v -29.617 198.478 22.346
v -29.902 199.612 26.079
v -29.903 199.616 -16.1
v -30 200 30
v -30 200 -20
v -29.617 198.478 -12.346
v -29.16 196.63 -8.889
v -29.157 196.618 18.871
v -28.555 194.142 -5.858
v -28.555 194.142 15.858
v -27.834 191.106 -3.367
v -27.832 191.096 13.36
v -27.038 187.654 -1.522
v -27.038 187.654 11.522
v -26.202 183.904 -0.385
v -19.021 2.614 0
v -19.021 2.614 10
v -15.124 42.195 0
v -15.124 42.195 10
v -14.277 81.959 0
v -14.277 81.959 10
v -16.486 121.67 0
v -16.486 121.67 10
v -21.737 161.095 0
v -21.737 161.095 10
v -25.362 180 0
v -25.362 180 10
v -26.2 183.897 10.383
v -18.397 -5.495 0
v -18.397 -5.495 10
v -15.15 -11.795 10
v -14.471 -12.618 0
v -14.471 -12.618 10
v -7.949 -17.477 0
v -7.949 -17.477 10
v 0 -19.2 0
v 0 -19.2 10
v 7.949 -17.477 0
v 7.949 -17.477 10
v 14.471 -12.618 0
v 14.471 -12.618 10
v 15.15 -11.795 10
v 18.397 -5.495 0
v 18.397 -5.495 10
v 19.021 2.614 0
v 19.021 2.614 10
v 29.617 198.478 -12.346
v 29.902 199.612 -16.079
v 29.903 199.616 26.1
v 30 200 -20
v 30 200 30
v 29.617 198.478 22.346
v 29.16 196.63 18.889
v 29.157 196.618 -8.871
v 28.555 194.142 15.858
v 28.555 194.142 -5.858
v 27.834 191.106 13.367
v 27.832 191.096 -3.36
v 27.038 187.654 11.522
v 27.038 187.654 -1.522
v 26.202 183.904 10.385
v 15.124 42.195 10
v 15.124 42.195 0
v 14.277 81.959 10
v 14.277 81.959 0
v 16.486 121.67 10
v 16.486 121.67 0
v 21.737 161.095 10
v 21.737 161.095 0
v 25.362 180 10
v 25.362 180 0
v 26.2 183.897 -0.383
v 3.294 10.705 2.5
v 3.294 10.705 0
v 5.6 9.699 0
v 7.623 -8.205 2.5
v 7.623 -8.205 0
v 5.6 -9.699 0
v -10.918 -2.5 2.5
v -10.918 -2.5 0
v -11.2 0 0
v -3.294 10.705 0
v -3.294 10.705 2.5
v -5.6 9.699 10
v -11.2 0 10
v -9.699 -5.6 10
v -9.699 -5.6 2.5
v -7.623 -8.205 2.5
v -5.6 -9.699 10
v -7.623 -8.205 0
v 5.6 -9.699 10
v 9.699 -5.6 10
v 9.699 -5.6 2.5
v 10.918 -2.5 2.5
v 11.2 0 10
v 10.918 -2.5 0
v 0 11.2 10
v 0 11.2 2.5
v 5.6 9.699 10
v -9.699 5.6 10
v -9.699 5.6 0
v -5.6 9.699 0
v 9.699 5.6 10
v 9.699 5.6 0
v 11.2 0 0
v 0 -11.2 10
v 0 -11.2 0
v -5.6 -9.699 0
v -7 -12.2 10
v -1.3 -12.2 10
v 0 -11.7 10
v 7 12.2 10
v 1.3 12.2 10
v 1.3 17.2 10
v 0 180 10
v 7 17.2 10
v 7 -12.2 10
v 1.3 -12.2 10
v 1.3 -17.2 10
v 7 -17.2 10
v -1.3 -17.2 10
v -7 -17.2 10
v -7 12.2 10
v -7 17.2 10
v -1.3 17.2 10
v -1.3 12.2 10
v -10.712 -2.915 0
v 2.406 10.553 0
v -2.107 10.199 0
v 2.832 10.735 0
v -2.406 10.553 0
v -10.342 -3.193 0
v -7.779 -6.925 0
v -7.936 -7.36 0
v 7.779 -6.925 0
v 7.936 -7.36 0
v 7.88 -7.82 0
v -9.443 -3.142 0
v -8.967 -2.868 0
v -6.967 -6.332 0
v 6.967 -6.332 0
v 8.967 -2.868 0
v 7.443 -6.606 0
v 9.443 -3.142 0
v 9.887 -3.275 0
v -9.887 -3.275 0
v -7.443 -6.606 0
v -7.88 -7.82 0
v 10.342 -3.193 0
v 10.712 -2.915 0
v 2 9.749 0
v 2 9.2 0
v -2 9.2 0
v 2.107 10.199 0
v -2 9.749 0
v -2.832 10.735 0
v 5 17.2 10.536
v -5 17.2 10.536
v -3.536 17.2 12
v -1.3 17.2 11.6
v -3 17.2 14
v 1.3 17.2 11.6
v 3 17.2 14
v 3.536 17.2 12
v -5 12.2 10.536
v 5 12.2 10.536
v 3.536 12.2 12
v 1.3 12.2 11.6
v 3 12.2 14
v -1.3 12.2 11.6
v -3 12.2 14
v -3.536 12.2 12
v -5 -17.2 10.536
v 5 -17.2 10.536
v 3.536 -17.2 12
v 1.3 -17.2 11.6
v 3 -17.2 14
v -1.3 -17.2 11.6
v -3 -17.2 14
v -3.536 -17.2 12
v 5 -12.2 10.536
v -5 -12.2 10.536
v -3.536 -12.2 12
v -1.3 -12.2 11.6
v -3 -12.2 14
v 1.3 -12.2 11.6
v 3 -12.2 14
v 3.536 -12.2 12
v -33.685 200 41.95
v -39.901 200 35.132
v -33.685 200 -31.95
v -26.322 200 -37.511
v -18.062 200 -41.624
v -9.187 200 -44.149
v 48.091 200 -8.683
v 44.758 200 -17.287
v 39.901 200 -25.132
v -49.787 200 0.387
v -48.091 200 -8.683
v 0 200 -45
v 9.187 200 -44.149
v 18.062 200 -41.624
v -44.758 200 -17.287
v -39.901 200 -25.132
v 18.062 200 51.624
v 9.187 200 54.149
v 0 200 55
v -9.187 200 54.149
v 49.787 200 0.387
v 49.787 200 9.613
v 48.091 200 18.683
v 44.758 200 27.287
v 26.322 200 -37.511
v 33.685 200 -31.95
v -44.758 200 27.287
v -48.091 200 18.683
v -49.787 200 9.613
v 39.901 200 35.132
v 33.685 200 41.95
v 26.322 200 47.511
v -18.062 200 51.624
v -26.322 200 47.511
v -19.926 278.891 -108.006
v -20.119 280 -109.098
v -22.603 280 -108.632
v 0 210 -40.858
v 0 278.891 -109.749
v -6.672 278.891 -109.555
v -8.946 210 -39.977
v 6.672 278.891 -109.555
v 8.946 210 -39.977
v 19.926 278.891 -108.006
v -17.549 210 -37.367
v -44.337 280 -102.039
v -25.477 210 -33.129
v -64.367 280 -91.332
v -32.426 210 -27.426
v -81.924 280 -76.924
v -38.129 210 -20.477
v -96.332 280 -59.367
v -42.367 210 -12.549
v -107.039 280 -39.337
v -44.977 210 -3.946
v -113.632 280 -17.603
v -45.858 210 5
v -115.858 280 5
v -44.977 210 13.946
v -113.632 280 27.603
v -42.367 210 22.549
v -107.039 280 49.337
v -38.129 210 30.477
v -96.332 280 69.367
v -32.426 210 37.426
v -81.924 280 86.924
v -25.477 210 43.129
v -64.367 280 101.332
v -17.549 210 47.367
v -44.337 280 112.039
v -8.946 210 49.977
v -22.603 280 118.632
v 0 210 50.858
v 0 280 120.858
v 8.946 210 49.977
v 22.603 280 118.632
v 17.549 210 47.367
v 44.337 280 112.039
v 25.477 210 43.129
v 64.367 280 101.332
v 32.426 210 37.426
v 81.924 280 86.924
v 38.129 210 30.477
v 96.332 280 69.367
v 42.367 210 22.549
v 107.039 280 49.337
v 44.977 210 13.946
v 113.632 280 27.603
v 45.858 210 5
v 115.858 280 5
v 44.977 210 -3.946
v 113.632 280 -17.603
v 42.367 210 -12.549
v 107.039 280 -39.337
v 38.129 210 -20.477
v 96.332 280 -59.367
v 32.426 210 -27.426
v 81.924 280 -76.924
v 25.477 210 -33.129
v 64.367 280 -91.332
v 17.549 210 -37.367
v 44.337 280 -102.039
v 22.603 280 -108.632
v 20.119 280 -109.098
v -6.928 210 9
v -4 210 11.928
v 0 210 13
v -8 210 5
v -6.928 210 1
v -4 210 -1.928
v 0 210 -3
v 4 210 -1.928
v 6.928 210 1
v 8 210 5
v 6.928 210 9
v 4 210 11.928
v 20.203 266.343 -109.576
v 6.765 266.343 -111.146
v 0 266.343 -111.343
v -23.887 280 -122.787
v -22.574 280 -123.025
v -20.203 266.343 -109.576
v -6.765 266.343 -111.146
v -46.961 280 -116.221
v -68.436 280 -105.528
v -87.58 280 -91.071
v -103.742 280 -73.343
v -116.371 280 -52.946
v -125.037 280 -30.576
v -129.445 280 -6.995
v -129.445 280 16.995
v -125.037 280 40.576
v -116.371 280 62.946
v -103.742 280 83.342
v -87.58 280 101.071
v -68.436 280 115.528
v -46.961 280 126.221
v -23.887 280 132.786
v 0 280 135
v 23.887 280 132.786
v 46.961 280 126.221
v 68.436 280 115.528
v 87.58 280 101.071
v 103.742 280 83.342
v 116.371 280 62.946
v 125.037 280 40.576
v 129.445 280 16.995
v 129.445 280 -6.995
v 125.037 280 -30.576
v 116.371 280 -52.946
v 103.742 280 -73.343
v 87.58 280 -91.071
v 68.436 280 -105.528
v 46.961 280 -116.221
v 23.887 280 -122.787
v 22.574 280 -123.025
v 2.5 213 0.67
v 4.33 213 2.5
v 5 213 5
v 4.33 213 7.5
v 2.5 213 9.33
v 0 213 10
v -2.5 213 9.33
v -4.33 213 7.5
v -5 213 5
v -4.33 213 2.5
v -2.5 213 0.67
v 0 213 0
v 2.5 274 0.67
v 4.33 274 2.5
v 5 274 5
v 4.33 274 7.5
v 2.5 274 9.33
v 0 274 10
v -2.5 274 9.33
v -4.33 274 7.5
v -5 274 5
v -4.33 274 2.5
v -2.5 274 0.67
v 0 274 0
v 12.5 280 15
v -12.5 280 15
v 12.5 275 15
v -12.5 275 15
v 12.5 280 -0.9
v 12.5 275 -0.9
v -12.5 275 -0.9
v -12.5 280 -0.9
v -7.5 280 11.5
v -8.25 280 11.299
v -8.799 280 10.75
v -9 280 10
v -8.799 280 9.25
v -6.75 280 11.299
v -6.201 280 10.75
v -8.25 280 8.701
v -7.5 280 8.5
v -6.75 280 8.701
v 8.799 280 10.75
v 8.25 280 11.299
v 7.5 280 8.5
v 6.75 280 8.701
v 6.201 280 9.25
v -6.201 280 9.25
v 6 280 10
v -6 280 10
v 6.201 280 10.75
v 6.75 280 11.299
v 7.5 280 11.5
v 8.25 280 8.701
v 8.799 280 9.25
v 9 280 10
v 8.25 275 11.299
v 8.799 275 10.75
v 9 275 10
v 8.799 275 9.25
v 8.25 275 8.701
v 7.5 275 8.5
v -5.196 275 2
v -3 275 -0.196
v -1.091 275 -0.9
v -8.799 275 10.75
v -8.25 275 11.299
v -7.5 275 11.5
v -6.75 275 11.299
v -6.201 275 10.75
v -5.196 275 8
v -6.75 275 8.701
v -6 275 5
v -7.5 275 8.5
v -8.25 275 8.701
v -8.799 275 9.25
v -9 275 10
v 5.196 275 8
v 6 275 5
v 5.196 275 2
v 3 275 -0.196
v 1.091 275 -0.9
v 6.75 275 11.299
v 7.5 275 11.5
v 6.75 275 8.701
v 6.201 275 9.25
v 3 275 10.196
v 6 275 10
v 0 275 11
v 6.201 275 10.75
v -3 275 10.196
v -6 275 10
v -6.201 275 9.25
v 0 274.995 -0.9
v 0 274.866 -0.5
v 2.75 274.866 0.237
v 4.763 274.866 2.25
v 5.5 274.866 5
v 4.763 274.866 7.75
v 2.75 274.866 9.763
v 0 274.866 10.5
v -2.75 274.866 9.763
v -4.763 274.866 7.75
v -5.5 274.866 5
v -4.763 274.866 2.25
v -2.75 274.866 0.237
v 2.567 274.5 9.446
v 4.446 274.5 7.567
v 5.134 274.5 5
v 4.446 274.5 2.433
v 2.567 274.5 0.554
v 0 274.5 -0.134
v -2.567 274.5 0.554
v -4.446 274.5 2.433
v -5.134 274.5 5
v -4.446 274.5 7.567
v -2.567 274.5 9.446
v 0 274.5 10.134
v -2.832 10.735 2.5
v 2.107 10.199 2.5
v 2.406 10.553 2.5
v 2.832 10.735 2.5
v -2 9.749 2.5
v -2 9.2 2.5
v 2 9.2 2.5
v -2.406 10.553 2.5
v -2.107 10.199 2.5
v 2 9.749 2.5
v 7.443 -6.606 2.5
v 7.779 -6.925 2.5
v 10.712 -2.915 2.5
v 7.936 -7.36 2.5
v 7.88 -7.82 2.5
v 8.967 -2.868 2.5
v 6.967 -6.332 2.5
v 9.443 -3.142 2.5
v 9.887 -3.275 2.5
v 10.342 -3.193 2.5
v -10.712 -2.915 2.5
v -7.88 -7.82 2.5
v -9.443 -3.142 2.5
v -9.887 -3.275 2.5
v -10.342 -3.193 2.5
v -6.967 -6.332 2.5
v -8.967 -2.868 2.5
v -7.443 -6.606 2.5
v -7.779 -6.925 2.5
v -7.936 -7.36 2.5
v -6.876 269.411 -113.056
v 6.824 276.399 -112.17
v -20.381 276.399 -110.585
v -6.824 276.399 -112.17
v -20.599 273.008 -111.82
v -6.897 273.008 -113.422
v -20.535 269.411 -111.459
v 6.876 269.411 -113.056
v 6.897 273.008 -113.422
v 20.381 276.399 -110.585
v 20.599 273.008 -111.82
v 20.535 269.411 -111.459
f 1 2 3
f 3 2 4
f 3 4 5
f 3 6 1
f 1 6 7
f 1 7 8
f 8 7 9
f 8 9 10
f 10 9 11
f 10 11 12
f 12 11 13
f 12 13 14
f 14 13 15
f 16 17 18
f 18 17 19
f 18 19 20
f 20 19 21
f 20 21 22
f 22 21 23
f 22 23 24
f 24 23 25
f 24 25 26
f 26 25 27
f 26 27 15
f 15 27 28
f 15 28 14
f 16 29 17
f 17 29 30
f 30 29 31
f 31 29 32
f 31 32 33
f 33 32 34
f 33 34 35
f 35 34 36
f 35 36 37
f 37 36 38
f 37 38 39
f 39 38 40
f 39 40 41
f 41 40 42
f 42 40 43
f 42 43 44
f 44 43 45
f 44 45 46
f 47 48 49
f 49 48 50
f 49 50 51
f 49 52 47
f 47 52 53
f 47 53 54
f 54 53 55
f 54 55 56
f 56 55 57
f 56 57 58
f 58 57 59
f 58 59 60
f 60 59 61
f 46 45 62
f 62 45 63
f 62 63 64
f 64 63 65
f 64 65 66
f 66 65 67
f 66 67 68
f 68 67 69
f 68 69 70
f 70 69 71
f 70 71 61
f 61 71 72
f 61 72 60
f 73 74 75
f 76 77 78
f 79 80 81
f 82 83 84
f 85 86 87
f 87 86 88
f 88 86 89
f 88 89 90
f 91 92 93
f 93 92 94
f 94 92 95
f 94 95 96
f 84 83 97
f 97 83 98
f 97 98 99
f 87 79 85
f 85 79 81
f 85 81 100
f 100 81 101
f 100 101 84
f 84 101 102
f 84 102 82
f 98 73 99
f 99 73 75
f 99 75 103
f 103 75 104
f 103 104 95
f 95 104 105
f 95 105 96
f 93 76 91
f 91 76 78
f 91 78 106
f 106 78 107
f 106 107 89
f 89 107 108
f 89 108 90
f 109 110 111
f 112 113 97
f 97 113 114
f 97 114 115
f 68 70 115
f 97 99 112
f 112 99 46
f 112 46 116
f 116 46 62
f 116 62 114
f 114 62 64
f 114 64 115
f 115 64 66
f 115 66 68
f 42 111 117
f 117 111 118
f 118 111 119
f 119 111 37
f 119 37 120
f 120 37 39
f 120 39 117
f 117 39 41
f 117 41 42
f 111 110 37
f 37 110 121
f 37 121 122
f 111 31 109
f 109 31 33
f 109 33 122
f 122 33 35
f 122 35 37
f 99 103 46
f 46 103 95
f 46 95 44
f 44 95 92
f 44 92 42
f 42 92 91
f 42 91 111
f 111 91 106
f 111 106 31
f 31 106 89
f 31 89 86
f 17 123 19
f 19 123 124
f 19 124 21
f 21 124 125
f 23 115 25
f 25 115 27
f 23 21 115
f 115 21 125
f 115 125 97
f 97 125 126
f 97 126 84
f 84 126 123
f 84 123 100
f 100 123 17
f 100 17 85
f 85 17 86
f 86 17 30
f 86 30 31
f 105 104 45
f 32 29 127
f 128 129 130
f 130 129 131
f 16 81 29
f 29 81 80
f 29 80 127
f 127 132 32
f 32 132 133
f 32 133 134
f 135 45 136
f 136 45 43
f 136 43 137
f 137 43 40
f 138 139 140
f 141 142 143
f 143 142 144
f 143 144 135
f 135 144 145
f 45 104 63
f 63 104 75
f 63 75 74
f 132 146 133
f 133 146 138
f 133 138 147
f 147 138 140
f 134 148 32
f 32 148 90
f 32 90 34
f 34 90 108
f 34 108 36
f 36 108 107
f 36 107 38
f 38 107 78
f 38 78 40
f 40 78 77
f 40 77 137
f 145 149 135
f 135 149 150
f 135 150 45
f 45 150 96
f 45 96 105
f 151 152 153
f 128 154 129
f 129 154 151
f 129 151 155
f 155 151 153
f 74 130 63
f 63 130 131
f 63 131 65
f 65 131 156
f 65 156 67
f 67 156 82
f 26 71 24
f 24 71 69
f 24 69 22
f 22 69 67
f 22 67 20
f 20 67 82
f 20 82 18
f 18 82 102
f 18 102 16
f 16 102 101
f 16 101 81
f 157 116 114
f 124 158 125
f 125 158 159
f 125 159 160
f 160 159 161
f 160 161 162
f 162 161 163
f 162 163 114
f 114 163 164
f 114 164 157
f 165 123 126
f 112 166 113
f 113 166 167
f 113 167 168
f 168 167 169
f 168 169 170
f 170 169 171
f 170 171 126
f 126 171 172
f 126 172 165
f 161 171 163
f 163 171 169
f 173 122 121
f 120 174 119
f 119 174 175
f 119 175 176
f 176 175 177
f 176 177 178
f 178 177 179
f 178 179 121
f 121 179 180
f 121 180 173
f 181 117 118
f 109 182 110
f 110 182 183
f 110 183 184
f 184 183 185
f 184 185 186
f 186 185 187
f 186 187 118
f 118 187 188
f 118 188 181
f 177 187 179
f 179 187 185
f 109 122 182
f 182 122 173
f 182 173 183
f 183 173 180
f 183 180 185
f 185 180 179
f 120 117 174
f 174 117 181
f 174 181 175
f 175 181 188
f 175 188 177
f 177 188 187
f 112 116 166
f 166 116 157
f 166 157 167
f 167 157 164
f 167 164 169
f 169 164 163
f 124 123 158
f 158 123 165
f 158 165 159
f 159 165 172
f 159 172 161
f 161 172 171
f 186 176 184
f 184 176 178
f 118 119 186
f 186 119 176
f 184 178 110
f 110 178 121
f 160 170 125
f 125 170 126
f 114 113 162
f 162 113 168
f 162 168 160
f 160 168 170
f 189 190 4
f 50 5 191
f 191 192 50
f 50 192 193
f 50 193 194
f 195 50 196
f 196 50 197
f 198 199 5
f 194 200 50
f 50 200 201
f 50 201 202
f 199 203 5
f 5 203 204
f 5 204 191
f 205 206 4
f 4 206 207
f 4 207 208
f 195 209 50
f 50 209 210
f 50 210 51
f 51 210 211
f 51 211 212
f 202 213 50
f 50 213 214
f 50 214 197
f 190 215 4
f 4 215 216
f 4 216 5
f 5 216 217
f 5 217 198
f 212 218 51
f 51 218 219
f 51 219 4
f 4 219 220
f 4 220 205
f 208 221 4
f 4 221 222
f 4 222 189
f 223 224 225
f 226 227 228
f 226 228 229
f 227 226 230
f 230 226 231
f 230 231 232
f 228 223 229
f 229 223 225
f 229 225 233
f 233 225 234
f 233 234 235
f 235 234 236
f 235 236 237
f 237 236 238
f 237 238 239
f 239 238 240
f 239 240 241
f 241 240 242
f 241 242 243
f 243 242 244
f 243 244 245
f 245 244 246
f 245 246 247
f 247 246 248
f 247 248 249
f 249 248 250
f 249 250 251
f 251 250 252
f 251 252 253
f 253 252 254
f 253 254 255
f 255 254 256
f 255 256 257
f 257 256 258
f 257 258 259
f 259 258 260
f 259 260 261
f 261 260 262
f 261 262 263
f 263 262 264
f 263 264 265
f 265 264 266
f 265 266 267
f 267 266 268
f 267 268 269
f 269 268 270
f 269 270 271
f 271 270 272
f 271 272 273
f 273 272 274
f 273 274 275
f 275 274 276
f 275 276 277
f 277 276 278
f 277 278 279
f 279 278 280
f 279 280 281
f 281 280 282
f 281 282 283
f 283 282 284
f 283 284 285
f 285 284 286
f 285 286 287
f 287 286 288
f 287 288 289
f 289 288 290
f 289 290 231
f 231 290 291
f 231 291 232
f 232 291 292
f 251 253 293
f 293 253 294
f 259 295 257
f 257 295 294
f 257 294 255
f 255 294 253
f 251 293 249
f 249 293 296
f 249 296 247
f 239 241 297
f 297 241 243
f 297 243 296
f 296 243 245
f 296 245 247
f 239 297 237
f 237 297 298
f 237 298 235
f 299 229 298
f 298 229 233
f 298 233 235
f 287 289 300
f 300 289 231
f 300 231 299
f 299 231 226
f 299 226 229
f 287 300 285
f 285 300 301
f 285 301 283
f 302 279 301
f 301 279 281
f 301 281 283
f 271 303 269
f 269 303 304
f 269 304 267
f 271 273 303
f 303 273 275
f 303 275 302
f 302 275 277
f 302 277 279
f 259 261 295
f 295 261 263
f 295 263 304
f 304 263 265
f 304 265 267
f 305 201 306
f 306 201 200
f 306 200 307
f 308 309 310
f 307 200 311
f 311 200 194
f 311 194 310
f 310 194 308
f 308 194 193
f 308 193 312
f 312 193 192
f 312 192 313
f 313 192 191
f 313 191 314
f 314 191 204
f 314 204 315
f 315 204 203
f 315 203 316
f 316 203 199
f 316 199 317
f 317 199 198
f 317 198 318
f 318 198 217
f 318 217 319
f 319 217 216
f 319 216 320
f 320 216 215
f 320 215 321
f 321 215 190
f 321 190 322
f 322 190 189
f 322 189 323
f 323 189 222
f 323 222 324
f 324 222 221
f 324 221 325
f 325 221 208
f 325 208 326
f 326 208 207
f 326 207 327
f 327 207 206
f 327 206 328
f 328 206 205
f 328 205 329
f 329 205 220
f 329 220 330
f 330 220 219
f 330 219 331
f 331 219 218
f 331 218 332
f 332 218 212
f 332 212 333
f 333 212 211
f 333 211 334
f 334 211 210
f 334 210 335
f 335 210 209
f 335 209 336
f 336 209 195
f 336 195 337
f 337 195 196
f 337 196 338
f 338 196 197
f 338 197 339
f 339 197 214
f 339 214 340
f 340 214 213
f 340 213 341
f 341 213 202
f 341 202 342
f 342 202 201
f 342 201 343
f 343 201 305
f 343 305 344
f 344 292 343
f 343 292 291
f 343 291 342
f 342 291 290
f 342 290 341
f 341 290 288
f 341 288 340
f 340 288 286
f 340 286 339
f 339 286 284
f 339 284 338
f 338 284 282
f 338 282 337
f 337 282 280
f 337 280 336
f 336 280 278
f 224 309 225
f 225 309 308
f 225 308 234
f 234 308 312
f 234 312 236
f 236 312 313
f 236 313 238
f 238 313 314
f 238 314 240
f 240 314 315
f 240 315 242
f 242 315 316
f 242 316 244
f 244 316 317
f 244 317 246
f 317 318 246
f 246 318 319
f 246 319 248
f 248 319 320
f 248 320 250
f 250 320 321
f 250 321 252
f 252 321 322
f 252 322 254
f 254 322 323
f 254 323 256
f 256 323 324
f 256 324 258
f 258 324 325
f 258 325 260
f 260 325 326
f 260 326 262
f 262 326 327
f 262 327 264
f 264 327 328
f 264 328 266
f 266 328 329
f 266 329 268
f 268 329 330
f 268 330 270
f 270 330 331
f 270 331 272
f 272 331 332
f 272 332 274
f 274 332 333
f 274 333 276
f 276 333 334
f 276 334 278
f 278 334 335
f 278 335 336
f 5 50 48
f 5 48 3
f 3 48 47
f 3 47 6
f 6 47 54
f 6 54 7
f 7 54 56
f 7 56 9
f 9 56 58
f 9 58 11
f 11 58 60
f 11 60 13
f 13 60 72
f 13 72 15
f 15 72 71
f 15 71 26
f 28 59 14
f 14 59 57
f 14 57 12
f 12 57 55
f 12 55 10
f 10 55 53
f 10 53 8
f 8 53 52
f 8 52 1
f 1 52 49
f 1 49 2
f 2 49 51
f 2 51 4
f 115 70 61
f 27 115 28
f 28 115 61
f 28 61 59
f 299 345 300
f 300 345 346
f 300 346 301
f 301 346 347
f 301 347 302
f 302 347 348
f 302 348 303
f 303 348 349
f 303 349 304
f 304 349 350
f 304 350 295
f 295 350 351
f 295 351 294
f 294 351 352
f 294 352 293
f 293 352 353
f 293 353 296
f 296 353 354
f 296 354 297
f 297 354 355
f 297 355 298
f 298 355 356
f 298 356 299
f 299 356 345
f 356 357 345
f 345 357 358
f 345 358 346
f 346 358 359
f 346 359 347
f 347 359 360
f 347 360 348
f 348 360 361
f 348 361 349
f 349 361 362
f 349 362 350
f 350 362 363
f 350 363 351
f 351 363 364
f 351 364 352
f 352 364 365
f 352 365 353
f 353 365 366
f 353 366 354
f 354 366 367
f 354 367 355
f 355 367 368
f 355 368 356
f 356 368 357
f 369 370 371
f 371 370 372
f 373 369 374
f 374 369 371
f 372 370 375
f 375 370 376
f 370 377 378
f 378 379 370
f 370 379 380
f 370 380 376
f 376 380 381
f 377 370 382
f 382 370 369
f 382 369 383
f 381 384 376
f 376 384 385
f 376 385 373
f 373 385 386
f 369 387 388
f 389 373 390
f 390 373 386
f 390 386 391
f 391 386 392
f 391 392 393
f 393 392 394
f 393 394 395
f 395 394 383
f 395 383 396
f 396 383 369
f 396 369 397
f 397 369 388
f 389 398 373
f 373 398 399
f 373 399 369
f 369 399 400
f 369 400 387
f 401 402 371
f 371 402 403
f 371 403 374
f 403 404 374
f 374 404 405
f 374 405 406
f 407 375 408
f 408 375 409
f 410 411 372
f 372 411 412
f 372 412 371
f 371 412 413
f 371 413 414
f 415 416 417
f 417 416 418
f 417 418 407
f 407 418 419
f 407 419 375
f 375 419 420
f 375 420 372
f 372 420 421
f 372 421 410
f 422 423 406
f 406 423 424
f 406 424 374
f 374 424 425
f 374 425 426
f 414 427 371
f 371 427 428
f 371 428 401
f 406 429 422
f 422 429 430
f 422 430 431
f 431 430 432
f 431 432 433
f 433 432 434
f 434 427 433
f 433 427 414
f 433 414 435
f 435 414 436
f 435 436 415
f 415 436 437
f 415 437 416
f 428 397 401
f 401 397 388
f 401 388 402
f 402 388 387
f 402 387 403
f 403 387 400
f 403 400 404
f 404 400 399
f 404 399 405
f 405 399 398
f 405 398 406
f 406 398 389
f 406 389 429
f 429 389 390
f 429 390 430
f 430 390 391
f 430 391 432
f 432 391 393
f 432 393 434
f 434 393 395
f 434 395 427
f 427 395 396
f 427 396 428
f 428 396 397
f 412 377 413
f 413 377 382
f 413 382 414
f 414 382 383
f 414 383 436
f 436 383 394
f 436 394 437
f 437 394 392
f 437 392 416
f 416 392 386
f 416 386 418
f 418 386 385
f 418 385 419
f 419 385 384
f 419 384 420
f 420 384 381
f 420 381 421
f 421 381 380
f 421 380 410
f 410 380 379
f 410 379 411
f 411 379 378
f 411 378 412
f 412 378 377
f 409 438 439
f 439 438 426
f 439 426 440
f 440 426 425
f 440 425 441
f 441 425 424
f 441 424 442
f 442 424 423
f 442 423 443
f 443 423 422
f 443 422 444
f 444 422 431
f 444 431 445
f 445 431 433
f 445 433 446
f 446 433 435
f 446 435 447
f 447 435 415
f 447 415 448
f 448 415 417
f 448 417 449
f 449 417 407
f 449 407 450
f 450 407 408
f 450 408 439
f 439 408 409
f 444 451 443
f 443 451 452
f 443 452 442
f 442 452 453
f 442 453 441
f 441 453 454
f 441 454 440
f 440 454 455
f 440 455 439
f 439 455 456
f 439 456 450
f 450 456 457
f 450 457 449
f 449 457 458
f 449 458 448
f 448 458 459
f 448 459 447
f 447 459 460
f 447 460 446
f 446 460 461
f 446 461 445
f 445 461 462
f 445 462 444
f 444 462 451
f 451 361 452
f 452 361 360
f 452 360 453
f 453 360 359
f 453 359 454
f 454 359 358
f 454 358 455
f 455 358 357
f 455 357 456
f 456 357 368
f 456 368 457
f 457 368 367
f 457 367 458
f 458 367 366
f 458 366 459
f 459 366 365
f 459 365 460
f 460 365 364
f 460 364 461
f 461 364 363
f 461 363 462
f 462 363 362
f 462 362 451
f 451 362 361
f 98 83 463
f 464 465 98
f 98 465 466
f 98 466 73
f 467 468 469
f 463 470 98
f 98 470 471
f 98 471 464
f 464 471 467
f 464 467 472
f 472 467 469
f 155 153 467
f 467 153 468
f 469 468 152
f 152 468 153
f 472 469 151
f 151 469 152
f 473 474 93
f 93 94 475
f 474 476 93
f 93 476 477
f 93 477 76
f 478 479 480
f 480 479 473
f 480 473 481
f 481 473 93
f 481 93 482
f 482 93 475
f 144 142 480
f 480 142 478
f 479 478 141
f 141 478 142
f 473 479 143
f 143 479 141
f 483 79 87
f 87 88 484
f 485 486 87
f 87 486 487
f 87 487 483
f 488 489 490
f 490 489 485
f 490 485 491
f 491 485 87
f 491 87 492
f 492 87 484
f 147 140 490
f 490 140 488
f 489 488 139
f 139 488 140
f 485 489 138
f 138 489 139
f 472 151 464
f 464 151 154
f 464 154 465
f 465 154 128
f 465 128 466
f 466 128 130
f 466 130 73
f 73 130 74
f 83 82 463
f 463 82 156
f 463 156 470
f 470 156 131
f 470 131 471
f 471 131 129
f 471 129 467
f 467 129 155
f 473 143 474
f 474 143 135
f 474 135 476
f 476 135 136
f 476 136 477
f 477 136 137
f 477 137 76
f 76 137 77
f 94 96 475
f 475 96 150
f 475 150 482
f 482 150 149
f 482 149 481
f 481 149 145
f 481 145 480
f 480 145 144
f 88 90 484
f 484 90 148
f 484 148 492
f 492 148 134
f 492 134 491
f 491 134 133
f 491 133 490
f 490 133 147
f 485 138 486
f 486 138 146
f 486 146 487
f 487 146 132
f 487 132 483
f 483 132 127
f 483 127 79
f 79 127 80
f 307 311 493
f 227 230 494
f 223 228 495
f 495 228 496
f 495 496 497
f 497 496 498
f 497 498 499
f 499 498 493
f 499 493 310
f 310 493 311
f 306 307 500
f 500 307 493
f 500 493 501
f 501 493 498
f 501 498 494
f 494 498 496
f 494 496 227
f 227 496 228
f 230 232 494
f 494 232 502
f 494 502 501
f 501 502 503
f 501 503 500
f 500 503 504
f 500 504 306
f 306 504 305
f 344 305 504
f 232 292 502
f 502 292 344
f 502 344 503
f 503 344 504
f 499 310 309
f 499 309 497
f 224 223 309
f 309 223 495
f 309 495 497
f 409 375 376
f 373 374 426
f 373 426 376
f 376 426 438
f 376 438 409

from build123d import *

# Parameters (mm, degrees)
SKETCH1_R               = 19.2
SKETCH1_R_2             = 11.2
BOSS_EXTRUDE1_DEPTH     = 10
SKETCH3_W               = 3
SKETCH3_H               = 5
SKETCH3_W_2             = 6
BOSS_EXTRUDE3_DEPTH     = 4
FILLET6_R               = 4
CUT_EXTRUDE1_DEPTH      = 186.773625685
CUT_EXTRUDE1_DEPTH_BACK = 186.773625685
SKETCH5_W               = 2.6
SKETCH5_H               = 1.6
FILLET7_R               = 20
SKETCH7_R               = 5
BOSS_EXTRUDE4_DEPTH     = 65
SKETCH8_W               = 25
SKETCH8_H               = 20
BOSS_EXTRUDE5_DEPTH     = 5
SKETCH10_R              = 1.5
CUT_EXTRUDE2_DEPTH      = 5
FILLET8_R               = 1
SKETCH2_W               = 4
SKETCH2_H               = 4
BOSS_EXTRUDE6_DEPTH     = 2.5
CIRPATTERN1_COUNT       = 3
FILLET9_R               = 1
CUT_REVOLVE1_ANGLE      = 20
CUT_EXTRUDE3_REACH      = 355.052
SKETCH14_W              = 25
SKETCH14_H              = 4.1


with BuildPart() as part:
    # Sketch1 → Boss-Extrude1 (new body)
    # profile 1 of 2: a face of its own
    with BuildSketch(Plane.XY):
        with BuildLine():
            Line((30, 200), (-30, 200))
            ThreePointArc((-30, 200), (-15, 101.836029472), (-19.021213884, 2.614081554))
            ThreePointArc((-19.021213884, 2.614081554), (0, 19.2), (19.021213884, 2.614081554))
            ThreePointArc((19.021213884, 2.614081554), (15, 101.836029472), (30, 200))
        make_face()
    # profile 2 of 2: a face of its own
    with BuildSketch(Plane.XY):
        Circle(SKETCH1_R)
        Circle(SKETCH1_R_2, mode=Mode.SUBTRACT)
    extrude(amount=BOSS_EXTRUDE1_DEPTH)

    # Sketch3 → Boss-Extrude3 (add)
    with BuildSketch(Plane.XY.offset(10)):
        with Locations((1.5, 14.7)):
            Rectangle(SKETCH3_W, SKETCH3_H)
        with Locations((-1.5, 14.7)):
            Rectangle(SKETCH3_W, SKETCH3_H)
        with Locations((0, -14.7)):
            Rectangle(SKETCH3_W_2, SKETCH3_H)
    extrude(amount=BOSS_EXTRUDE3_DEPTH)

    # Fillet6
    fillet6_edges = [part.edges().sort_by_distance(p)[0] for p in [
        (-3, -14.7, 10),
        (3, -14.7, 10),
        (3, 14.7, 10),
        (-3, 14.7, 10),
    ]]
    fillet(fillet6_edges, radius=FILLET6_R - 0.0001)  # a hair under: the kernel refuses the full size

    # Sketch5 → Cut-Extrude1 (cut, two sides: drawn at the far end of the back side and taken through both)
    with BuildSketch(Plane(origin=(0, 17.2, 0), x_dir=(1, 0, 0), z_dir=(0, 1, 0)).offset(-CUT_EXTRUDE1_DEPTH_BACK)):
        with Locations((0, -10.8)):
            Rectangle(SKETCH5_W, SKETCH5_H)
    extrude(amount=CUT_EXTRUDE1_DEPTH + CUT_EXTRUDE1_DEPTH_BACK, mode=Mode.SUBTRACT)

    # Sketch6 → Revolve1 (revolve)
    with BuildSketch(Plane(origin=(0, 0, 0), x_dir=(0, 0, -1), z_dir=(1, 0, 0))):
        Polygon((-5, 210), (-5, 200), (45, 200), (125, 280), (110.857864376, 280), (100.857864376, 270), (40.857864376, 210), (5, 210), align=None)
    revolve(axis=Axis((0, 200, 5), (0, 1, 0)))

    # Fillet7
    fillet7_edges = [part.edges().sort_by_distance(p)[0] for p in [
        (0, 200, 10),
        (0, 200, 0),
    ]]
    fillet(fillet7_edges, radius=FILLET7_R)



with BuildPart() as body_2:
    # Sketch7 → Boss-Extrude4 (new body)
    with BuildSketch(Plane(origin=(0, 210, 0), x_dir=(1, 0, 0), z_dir=(0, 1, 0))):
        with Locations(Location((0, -5, 0), (0, 0, 270))):
            Circle(SKETCH7_R)
    extrude(amount=BOSS_EXTRUDE4_DEPTH)

    # Sketch8 → Boss-Extrude5 (add)
    with BuildSketch(Plane(origin=(0, 275, 0), x_dir=(1, 0, 0), z_dir=(0, 1, 0))):
        with Locations((0, -5)):
            Rectangle(SKETCH8_W, SKETCH8_H)
    extrude(amount=BOSS_EXTRUDE5_DEPTH)

    # Sketch10 → Cut-Extrude2 (cut)
    with BuildSketch(Plane(origin=(0, 280, 0), x_dir=(1, 0, 0), z_dir=(0, 1, 0))):
        with Locations(Location((-7.5, -10, 0), (0, 0, 270))):
            Circle(SKETCH10_R)
        with Locations(Location((7.5, -10, 0), (0, 0, 270))):
            Circle(SKETCH10_R)
    extrude(amount=-CUT_EXTRUDE2_DEPTH, mode=Mode.SUBTRACT)

    # Fillet8
    fillet8_edges = [body_2.edges().sort_by_distance(p)[0] for p in [
        (0, 275, 0),
    ]]
    fillet(fillet8_edges, radius=FILLET8_R)


with BuildPart() as part_1:
    add(part.part)

    add(body_2.part)  # Revolve2 merges body 2
    # Sketch12 → Revolve2 (revolve)
    with BuildSketch(Plane.XY.offset(5), mode=Mode.PRIVATE) as revolve2_sk:
        Polygon((5, 210), (5, 213), (8, 210), align=None)
    revolve(revolve2_sk.sketch.rotate(Axis((0, 210, 5), (0, 1, 0)), 90), axis=Axis((0, 210, 5), (0, 1, 0)))

    # Sketch2 → Boss-Extrude6 (add)
    with BuildSketch(Plane(origin=(0, 0, 0), x_dir=(-1, 0, 0), z_dir=(0, 0, -1))):
        with Locations((0, 11.2)):
            Rectangle(SKETCH2_W, SKETCH2_H)
    boss_extrude6 = extrude(amount=-BOSS_EXTRUDE6_DEPTH)

    # CirPattern1: Boss-Extrude6 ×3 about axis
    cirpattern1_axis = Axis((0, 0, 0), (0, 0, 1))
    for i in range(1, CIRPATTERN1_COUNT):
        add(boss_extrude6.rotate(cirpattern1_axis, i * 360 / CIRPATTERN1_COUNT))

    # Fillet9
    fillet9_edges = [part_1.edges().sort_by_distance(p)[0] for p in [
        (-2, 11.019981851, 1.25),
        (2, 11.019981851, 1.25),
        (10.543584232, -3.777940118, 1.25),
        (8.543584232, -7.242041733, 1.25),
        (-8.543584232, -7.242041733, 1.25),
        (-10.543584232, -3.777940118, 1.25),
    ]]
    fillet(fillet9_edges, radius=FILLET9_R)

    # Sketch13 → Cut-Revolve1 (revolve, symmetric, cut)
    with BuildSketch(Plane(origin=(0, 0, 0), x_dir=(0, 0, -1), z_dir=(1, 0, 0))) as cut_revolve1_sk:
        with BuildLine():
            ThreePointArc((111.343145751, 266.343145751), (113.077327761, 275.061467459), (105.686291501, 280))
            Line((105.686291501, 280), (125, 280))
            Line((125, 280), (111.343145751, 266.343145751))
        make_face()
    revolve(axis=Axis((0, 274, 5), (0, -1, 0)), revolution_arc=CUT_REVOLVE1_ANGLE / 2, mode=Mode.SUBTRACT)
    revolve(cut_revolve1_sk.sketch, axis=Axis((0, 274, 5), (0, 1, 0)), revolution_arc=CUT_REVOLVE1_ANGLE / 2, mode=Mode.SUBTRACT)

    # Sketch14 → Cut-Extrude3 (cut, up to next)
    with BuildSketch(Plane(origin=(0, 280, 0), x_dir=(1, 0, 0), z_dir=(0, 1, 0)), mode=Mode.PRIVATE) as cut_extrude3_sk1:
        with Locations((0, 2.95)):
            Rectangle(SKETCH14_W, SKETCH14_H)
    cut_extrude3_tool1 = extrude(cut_extrude3_sk1.sketch, amount=-CUT_EXTRUDE3_REACH, mode=Mode.PRIVATE) & part_1.part
    add(cut_extrude3_tool1.solids().sort_by_distance((0, 280, -2.95))[0], mode=Mode.SUBTRACT)


solid = part_1.part
